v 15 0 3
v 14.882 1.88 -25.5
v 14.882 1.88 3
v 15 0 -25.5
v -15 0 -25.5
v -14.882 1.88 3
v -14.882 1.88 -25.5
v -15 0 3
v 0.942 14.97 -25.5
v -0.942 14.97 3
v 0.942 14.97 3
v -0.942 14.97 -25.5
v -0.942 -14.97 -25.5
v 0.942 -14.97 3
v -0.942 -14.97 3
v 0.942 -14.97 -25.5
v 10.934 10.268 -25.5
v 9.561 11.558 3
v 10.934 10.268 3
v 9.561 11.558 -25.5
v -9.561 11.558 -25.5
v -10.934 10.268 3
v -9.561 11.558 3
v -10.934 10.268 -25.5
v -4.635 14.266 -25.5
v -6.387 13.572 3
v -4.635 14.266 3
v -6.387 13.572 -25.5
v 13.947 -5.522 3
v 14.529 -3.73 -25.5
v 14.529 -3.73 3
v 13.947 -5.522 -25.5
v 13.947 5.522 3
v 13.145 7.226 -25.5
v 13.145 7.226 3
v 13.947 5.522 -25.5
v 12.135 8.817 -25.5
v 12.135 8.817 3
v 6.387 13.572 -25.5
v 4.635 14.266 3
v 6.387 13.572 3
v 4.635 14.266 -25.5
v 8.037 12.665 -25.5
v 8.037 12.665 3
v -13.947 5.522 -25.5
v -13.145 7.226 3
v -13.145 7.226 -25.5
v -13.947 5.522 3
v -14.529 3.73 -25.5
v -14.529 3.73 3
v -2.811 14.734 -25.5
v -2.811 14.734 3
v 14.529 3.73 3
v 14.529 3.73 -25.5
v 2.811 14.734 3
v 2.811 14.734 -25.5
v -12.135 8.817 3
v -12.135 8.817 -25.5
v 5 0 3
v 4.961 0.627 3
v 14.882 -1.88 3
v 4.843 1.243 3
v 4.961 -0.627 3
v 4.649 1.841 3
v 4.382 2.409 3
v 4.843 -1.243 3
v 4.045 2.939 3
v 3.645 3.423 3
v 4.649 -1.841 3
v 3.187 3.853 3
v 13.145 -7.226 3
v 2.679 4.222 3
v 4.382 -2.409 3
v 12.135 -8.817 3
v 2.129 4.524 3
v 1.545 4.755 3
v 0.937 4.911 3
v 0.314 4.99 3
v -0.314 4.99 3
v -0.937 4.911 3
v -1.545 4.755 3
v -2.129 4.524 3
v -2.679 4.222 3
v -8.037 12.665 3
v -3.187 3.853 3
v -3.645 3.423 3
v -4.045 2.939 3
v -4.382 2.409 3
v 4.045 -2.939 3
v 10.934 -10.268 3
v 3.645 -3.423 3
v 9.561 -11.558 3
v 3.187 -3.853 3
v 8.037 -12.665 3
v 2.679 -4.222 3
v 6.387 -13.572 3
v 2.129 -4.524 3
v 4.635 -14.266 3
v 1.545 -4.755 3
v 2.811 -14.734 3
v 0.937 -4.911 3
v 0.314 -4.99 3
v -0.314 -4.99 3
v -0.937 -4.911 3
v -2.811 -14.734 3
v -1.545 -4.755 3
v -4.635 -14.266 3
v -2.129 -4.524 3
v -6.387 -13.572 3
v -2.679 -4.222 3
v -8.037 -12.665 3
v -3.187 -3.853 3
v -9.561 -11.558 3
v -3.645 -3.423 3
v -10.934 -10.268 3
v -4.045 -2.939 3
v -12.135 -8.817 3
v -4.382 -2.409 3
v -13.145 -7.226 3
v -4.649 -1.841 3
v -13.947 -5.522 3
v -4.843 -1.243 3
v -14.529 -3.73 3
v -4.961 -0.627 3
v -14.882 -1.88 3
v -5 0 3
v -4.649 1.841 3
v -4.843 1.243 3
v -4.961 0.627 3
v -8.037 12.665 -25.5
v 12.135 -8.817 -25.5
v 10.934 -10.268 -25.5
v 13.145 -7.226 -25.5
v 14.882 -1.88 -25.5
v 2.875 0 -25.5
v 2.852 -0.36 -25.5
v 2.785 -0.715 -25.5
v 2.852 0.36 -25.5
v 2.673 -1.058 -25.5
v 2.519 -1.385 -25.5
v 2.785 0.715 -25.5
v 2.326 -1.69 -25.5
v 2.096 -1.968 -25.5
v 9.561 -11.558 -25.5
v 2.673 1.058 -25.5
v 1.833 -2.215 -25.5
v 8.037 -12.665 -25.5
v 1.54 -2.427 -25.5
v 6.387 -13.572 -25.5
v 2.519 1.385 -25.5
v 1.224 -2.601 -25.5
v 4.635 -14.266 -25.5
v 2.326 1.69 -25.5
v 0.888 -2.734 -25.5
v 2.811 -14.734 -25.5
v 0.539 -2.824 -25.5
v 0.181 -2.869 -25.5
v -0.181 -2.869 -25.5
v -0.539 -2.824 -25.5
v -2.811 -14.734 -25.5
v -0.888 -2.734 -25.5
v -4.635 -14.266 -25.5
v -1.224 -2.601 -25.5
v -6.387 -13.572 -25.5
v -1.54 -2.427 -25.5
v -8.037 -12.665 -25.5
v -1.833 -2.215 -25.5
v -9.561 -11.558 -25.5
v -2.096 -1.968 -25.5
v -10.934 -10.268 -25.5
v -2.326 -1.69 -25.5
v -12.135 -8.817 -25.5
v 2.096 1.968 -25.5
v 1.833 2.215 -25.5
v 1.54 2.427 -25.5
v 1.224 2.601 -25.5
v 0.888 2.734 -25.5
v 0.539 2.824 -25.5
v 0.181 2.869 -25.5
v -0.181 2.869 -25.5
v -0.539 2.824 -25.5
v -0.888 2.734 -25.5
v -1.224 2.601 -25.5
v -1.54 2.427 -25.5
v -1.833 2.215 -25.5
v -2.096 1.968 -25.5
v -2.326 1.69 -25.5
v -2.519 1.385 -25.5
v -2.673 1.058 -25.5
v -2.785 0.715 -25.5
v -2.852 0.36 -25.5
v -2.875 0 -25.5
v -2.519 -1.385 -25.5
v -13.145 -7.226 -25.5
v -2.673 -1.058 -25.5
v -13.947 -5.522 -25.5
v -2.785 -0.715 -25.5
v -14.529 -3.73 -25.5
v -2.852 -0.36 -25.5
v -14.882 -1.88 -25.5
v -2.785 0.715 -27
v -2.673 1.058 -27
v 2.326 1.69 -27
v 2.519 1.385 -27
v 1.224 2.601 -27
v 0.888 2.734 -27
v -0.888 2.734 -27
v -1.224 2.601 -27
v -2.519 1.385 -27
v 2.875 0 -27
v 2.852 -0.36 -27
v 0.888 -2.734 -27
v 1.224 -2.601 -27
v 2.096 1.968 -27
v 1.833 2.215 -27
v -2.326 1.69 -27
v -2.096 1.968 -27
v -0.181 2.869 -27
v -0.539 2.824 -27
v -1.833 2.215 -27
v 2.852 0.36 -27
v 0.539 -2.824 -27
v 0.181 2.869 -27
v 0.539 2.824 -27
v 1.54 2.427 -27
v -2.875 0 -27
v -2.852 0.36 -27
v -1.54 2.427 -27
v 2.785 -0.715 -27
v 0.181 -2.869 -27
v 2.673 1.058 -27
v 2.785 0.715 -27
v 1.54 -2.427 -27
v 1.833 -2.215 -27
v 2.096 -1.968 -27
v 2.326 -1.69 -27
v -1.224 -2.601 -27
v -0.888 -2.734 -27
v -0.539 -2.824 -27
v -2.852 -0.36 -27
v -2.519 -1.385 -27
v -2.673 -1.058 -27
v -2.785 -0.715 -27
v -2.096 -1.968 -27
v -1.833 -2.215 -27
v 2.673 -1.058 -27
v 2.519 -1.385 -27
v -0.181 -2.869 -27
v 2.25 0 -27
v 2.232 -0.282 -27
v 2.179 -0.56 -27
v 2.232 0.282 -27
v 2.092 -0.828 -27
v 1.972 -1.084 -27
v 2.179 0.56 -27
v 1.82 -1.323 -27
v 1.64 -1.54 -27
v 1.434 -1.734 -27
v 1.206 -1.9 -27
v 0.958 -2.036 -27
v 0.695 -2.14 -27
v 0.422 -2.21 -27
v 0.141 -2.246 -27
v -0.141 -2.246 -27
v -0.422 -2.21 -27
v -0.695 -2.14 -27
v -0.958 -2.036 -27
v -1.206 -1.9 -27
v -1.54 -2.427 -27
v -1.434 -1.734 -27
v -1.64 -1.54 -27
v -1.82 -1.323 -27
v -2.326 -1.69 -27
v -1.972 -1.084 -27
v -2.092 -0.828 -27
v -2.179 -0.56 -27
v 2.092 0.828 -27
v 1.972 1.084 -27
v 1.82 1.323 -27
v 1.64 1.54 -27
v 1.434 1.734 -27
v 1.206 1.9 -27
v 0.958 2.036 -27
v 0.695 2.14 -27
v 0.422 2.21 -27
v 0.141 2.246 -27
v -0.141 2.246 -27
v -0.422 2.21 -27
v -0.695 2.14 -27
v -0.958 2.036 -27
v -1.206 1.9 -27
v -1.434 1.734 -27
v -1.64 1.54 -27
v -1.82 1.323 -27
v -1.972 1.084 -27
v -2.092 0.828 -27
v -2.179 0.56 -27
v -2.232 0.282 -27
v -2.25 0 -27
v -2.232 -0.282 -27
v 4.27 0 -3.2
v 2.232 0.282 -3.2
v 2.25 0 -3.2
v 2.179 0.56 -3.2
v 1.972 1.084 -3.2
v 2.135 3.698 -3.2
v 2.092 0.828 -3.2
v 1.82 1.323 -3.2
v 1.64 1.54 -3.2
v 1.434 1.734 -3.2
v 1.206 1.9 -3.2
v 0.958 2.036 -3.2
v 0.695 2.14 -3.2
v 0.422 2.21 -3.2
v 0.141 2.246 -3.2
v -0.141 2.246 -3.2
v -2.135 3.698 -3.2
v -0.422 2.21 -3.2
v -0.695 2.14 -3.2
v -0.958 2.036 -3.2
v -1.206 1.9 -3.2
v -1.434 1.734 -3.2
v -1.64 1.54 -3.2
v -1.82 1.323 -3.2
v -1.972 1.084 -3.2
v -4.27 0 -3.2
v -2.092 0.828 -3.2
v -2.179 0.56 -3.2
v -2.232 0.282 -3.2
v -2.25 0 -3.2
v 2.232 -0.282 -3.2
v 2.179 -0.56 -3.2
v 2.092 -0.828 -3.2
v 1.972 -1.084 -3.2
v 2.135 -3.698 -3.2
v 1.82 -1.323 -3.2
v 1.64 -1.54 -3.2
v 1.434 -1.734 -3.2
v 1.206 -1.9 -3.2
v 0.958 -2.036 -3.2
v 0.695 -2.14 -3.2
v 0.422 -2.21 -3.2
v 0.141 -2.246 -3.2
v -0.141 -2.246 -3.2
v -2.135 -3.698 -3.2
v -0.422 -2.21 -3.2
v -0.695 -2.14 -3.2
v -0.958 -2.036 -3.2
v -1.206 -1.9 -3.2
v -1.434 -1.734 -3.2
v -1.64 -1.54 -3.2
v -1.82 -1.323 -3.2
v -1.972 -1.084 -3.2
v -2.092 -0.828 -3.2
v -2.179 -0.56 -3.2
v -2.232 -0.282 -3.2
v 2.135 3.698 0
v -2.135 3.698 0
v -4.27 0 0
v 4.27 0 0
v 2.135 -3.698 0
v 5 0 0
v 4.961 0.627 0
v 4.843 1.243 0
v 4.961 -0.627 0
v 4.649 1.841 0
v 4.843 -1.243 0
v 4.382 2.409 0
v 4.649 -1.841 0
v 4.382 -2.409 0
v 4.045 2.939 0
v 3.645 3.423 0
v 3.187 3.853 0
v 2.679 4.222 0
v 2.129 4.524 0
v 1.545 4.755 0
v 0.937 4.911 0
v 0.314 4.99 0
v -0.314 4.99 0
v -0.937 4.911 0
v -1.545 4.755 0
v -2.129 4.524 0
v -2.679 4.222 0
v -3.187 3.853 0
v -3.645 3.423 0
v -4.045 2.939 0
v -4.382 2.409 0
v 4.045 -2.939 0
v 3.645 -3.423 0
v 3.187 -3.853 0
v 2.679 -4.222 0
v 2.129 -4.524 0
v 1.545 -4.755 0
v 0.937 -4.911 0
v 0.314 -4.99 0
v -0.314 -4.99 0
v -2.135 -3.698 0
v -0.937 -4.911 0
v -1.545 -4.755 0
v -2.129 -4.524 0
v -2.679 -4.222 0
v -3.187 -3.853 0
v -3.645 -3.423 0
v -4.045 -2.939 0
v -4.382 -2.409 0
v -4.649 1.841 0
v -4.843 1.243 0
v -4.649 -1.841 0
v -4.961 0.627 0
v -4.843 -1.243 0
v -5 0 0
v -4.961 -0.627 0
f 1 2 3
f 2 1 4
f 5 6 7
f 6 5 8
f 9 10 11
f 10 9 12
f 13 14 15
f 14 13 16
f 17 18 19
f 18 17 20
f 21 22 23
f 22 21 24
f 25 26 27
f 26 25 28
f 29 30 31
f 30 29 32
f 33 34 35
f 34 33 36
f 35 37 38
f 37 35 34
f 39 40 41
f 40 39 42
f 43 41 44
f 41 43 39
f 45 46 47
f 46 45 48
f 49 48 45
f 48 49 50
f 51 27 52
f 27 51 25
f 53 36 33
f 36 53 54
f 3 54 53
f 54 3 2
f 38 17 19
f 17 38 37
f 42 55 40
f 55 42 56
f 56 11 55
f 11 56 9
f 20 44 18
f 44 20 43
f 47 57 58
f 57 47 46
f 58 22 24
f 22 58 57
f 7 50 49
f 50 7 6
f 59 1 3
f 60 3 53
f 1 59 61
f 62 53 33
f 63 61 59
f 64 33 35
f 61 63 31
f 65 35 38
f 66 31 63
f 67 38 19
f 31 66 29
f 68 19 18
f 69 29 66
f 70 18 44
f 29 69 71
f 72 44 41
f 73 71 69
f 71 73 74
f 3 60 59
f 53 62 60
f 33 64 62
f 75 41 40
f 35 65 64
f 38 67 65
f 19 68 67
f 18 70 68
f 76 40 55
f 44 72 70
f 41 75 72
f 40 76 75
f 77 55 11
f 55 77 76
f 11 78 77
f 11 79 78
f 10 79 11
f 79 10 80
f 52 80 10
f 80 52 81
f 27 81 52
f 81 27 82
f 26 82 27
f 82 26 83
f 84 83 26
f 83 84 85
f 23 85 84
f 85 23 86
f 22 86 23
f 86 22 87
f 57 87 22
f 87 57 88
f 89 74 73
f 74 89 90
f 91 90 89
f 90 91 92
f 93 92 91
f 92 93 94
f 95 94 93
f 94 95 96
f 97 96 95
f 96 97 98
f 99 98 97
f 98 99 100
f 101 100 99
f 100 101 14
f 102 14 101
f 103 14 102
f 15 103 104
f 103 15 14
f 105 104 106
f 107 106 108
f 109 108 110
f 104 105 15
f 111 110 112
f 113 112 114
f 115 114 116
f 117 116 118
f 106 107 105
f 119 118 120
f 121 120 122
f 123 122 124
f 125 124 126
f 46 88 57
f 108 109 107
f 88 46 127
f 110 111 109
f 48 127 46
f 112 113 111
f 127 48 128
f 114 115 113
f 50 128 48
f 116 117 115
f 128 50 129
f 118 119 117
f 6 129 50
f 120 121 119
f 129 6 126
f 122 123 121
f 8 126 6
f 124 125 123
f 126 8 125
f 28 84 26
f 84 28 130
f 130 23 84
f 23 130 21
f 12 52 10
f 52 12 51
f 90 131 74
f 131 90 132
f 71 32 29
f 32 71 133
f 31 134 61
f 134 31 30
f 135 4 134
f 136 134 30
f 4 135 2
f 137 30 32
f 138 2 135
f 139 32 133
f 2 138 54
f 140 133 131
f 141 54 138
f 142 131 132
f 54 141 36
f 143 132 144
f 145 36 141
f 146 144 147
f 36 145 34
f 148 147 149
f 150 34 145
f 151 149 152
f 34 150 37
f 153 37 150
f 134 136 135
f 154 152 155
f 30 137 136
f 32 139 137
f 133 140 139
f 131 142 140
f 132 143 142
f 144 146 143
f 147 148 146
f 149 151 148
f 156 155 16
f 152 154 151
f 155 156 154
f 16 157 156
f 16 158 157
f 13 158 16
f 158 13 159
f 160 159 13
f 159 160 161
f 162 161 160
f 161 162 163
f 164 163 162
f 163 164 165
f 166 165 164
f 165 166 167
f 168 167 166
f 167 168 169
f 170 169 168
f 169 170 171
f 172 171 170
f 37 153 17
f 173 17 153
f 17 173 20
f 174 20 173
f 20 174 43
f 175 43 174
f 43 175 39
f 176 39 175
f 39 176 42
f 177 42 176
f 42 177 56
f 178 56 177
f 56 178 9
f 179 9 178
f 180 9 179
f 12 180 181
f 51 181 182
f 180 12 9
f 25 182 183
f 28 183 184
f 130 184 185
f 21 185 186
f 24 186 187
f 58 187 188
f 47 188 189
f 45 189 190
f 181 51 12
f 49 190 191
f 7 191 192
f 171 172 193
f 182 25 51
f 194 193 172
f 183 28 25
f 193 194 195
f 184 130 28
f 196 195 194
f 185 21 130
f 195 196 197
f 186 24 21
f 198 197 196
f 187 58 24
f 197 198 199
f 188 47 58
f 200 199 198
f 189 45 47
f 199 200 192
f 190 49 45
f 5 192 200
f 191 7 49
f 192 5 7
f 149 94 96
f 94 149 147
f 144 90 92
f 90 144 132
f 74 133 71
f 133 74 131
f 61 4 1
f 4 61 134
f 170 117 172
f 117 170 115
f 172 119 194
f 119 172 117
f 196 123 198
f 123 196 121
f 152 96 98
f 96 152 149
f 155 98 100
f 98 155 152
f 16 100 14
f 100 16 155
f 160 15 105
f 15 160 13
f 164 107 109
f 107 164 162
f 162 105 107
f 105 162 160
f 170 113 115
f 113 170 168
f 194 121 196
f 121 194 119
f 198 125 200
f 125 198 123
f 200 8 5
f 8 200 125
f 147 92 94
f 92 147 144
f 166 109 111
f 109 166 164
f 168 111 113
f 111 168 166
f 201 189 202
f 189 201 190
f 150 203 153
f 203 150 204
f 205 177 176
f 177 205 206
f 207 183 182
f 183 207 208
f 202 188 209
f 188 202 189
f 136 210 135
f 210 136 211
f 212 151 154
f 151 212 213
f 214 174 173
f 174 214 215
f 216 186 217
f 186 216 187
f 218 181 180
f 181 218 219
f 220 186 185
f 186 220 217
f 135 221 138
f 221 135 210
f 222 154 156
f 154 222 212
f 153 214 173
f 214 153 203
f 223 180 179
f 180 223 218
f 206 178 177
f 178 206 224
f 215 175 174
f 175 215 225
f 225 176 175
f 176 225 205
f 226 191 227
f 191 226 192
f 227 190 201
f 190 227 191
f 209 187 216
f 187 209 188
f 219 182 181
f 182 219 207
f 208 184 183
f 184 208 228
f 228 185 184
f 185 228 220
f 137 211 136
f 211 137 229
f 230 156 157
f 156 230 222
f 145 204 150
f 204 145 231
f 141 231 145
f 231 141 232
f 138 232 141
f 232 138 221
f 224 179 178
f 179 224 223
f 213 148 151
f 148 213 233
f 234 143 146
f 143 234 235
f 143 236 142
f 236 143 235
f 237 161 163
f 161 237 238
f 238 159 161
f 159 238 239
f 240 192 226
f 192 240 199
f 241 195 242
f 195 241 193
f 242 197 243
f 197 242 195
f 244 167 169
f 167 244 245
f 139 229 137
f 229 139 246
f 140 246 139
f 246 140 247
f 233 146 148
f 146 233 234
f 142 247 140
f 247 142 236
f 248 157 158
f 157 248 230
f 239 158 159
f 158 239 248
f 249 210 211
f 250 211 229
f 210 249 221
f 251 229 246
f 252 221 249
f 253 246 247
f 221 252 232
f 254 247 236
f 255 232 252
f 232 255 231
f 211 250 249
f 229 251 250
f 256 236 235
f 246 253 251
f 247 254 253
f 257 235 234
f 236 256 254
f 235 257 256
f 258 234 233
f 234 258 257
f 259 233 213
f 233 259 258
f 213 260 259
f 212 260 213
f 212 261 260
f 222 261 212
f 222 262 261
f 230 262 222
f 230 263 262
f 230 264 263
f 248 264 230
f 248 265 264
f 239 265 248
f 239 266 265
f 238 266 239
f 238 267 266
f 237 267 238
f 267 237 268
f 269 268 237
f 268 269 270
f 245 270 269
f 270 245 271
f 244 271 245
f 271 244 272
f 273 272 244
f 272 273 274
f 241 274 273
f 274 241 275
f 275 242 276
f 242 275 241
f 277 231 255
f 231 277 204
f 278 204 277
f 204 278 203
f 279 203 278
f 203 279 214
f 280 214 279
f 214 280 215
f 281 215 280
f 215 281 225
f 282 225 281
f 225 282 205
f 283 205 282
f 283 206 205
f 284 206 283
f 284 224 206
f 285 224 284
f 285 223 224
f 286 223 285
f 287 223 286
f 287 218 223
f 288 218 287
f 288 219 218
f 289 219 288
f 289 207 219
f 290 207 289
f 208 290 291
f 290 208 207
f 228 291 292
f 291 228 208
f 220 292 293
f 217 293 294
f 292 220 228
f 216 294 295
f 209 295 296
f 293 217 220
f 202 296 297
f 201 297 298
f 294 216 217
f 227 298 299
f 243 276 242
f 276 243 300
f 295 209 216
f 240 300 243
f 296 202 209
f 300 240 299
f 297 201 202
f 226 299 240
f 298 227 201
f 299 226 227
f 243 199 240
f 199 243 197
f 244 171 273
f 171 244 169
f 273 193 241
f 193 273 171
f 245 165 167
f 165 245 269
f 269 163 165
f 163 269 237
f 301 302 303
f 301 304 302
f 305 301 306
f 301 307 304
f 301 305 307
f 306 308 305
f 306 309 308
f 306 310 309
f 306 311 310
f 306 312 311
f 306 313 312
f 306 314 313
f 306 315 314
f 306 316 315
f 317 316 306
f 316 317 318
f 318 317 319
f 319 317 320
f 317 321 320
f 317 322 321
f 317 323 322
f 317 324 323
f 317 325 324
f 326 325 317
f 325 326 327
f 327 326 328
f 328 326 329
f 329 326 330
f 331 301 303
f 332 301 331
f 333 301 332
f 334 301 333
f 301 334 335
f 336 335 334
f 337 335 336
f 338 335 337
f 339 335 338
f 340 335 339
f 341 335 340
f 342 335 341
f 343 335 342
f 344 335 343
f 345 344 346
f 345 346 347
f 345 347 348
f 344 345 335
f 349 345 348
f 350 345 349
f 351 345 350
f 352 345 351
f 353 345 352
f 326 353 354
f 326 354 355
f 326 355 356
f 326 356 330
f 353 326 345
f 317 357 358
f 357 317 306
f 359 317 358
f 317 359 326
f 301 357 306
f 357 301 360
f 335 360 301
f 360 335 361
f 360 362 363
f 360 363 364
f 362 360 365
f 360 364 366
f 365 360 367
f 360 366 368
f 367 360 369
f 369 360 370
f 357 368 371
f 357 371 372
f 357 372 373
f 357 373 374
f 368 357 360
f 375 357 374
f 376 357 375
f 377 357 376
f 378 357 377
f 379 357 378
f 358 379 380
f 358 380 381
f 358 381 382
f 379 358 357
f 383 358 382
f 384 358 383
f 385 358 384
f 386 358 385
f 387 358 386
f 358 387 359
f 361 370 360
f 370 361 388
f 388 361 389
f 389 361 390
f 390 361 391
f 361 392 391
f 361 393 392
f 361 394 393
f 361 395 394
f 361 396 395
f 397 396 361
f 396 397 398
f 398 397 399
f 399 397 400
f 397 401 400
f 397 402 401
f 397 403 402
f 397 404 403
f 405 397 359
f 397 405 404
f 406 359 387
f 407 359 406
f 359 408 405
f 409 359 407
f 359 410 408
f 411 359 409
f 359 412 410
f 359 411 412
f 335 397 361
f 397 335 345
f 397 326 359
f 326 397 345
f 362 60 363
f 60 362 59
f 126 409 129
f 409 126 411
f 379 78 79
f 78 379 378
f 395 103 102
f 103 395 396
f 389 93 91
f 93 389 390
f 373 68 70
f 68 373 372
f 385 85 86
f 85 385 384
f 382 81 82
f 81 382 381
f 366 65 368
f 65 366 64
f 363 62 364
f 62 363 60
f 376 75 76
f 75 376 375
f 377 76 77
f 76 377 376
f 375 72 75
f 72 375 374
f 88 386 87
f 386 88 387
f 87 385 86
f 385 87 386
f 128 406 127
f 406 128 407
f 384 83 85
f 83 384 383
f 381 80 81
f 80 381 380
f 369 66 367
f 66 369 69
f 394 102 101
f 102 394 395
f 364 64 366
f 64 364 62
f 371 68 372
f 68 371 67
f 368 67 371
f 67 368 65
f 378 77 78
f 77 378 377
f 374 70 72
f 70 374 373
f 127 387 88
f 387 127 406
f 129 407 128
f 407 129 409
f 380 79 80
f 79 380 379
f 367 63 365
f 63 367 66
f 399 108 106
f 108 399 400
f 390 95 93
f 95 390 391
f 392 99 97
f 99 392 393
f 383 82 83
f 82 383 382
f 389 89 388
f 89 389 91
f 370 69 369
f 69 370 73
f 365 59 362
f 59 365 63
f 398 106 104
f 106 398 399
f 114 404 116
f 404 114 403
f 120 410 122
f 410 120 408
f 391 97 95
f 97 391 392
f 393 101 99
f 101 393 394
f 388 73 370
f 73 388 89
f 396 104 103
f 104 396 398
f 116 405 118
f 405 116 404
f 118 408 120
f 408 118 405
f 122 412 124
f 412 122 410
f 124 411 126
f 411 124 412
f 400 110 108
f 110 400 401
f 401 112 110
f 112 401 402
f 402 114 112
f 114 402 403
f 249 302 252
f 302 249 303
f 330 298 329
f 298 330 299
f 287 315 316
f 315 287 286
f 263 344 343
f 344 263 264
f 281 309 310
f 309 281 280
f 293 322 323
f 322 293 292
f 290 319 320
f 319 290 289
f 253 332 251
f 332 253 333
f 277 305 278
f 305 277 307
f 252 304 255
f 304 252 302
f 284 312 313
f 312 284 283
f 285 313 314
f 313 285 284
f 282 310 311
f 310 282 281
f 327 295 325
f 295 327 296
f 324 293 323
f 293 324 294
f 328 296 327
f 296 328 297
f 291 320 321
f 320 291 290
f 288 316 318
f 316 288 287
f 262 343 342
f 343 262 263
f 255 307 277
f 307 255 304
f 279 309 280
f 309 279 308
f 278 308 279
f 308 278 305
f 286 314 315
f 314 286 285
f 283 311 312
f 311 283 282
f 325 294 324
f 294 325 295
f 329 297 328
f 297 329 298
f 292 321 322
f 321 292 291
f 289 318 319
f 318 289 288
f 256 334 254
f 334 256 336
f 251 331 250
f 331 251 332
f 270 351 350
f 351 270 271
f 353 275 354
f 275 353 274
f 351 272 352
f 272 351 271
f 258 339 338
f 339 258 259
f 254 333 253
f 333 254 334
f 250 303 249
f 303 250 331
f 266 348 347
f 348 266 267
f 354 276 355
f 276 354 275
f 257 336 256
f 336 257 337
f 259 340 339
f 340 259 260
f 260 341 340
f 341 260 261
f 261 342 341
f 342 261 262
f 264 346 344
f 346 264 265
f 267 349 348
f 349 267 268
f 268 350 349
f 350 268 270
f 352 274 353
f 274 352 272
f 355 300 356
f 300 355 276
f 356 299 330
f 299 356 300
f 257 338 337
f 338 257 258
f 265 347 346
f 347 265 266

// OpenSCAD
$fn = 50;

difference() {
	union() {
		translate(v = [0, 0, -25.5]) {
			cylinder(h = 28.5, r = 15.0);
		}
		#translate(v = [0, 0, -27.0]) {
			cylinder(h = 27, r = 2.875);
		}
	}
	union() {
		translate(v = [0, 0, 0]) {
			rotate(a = [0, 0, 0]) {
				difference() {
					union() {
						translate(v = [0, 0, -3.2]) {
							linear_extrude(height = 3.2) {
								polygon(points = [[4.2698, 0.0], [2.1349000000000005, 3.697755269078796], [-2.134899999999999, 3.6977552690787965], [-4.2698, 5.228996902999369e-16], [-2.134900000000002, -3.6977552690787956], [2.1348999999999974, -3.697755269078798]]);
							}
						}
					}
					union();
				}
			}
		}
		#cylinder(h = 3, r = 5.0);
		#translate(v = [0, 0, -100.0]) {
			cylinder(h = 200, r = 2.25);
		}
	}
}
